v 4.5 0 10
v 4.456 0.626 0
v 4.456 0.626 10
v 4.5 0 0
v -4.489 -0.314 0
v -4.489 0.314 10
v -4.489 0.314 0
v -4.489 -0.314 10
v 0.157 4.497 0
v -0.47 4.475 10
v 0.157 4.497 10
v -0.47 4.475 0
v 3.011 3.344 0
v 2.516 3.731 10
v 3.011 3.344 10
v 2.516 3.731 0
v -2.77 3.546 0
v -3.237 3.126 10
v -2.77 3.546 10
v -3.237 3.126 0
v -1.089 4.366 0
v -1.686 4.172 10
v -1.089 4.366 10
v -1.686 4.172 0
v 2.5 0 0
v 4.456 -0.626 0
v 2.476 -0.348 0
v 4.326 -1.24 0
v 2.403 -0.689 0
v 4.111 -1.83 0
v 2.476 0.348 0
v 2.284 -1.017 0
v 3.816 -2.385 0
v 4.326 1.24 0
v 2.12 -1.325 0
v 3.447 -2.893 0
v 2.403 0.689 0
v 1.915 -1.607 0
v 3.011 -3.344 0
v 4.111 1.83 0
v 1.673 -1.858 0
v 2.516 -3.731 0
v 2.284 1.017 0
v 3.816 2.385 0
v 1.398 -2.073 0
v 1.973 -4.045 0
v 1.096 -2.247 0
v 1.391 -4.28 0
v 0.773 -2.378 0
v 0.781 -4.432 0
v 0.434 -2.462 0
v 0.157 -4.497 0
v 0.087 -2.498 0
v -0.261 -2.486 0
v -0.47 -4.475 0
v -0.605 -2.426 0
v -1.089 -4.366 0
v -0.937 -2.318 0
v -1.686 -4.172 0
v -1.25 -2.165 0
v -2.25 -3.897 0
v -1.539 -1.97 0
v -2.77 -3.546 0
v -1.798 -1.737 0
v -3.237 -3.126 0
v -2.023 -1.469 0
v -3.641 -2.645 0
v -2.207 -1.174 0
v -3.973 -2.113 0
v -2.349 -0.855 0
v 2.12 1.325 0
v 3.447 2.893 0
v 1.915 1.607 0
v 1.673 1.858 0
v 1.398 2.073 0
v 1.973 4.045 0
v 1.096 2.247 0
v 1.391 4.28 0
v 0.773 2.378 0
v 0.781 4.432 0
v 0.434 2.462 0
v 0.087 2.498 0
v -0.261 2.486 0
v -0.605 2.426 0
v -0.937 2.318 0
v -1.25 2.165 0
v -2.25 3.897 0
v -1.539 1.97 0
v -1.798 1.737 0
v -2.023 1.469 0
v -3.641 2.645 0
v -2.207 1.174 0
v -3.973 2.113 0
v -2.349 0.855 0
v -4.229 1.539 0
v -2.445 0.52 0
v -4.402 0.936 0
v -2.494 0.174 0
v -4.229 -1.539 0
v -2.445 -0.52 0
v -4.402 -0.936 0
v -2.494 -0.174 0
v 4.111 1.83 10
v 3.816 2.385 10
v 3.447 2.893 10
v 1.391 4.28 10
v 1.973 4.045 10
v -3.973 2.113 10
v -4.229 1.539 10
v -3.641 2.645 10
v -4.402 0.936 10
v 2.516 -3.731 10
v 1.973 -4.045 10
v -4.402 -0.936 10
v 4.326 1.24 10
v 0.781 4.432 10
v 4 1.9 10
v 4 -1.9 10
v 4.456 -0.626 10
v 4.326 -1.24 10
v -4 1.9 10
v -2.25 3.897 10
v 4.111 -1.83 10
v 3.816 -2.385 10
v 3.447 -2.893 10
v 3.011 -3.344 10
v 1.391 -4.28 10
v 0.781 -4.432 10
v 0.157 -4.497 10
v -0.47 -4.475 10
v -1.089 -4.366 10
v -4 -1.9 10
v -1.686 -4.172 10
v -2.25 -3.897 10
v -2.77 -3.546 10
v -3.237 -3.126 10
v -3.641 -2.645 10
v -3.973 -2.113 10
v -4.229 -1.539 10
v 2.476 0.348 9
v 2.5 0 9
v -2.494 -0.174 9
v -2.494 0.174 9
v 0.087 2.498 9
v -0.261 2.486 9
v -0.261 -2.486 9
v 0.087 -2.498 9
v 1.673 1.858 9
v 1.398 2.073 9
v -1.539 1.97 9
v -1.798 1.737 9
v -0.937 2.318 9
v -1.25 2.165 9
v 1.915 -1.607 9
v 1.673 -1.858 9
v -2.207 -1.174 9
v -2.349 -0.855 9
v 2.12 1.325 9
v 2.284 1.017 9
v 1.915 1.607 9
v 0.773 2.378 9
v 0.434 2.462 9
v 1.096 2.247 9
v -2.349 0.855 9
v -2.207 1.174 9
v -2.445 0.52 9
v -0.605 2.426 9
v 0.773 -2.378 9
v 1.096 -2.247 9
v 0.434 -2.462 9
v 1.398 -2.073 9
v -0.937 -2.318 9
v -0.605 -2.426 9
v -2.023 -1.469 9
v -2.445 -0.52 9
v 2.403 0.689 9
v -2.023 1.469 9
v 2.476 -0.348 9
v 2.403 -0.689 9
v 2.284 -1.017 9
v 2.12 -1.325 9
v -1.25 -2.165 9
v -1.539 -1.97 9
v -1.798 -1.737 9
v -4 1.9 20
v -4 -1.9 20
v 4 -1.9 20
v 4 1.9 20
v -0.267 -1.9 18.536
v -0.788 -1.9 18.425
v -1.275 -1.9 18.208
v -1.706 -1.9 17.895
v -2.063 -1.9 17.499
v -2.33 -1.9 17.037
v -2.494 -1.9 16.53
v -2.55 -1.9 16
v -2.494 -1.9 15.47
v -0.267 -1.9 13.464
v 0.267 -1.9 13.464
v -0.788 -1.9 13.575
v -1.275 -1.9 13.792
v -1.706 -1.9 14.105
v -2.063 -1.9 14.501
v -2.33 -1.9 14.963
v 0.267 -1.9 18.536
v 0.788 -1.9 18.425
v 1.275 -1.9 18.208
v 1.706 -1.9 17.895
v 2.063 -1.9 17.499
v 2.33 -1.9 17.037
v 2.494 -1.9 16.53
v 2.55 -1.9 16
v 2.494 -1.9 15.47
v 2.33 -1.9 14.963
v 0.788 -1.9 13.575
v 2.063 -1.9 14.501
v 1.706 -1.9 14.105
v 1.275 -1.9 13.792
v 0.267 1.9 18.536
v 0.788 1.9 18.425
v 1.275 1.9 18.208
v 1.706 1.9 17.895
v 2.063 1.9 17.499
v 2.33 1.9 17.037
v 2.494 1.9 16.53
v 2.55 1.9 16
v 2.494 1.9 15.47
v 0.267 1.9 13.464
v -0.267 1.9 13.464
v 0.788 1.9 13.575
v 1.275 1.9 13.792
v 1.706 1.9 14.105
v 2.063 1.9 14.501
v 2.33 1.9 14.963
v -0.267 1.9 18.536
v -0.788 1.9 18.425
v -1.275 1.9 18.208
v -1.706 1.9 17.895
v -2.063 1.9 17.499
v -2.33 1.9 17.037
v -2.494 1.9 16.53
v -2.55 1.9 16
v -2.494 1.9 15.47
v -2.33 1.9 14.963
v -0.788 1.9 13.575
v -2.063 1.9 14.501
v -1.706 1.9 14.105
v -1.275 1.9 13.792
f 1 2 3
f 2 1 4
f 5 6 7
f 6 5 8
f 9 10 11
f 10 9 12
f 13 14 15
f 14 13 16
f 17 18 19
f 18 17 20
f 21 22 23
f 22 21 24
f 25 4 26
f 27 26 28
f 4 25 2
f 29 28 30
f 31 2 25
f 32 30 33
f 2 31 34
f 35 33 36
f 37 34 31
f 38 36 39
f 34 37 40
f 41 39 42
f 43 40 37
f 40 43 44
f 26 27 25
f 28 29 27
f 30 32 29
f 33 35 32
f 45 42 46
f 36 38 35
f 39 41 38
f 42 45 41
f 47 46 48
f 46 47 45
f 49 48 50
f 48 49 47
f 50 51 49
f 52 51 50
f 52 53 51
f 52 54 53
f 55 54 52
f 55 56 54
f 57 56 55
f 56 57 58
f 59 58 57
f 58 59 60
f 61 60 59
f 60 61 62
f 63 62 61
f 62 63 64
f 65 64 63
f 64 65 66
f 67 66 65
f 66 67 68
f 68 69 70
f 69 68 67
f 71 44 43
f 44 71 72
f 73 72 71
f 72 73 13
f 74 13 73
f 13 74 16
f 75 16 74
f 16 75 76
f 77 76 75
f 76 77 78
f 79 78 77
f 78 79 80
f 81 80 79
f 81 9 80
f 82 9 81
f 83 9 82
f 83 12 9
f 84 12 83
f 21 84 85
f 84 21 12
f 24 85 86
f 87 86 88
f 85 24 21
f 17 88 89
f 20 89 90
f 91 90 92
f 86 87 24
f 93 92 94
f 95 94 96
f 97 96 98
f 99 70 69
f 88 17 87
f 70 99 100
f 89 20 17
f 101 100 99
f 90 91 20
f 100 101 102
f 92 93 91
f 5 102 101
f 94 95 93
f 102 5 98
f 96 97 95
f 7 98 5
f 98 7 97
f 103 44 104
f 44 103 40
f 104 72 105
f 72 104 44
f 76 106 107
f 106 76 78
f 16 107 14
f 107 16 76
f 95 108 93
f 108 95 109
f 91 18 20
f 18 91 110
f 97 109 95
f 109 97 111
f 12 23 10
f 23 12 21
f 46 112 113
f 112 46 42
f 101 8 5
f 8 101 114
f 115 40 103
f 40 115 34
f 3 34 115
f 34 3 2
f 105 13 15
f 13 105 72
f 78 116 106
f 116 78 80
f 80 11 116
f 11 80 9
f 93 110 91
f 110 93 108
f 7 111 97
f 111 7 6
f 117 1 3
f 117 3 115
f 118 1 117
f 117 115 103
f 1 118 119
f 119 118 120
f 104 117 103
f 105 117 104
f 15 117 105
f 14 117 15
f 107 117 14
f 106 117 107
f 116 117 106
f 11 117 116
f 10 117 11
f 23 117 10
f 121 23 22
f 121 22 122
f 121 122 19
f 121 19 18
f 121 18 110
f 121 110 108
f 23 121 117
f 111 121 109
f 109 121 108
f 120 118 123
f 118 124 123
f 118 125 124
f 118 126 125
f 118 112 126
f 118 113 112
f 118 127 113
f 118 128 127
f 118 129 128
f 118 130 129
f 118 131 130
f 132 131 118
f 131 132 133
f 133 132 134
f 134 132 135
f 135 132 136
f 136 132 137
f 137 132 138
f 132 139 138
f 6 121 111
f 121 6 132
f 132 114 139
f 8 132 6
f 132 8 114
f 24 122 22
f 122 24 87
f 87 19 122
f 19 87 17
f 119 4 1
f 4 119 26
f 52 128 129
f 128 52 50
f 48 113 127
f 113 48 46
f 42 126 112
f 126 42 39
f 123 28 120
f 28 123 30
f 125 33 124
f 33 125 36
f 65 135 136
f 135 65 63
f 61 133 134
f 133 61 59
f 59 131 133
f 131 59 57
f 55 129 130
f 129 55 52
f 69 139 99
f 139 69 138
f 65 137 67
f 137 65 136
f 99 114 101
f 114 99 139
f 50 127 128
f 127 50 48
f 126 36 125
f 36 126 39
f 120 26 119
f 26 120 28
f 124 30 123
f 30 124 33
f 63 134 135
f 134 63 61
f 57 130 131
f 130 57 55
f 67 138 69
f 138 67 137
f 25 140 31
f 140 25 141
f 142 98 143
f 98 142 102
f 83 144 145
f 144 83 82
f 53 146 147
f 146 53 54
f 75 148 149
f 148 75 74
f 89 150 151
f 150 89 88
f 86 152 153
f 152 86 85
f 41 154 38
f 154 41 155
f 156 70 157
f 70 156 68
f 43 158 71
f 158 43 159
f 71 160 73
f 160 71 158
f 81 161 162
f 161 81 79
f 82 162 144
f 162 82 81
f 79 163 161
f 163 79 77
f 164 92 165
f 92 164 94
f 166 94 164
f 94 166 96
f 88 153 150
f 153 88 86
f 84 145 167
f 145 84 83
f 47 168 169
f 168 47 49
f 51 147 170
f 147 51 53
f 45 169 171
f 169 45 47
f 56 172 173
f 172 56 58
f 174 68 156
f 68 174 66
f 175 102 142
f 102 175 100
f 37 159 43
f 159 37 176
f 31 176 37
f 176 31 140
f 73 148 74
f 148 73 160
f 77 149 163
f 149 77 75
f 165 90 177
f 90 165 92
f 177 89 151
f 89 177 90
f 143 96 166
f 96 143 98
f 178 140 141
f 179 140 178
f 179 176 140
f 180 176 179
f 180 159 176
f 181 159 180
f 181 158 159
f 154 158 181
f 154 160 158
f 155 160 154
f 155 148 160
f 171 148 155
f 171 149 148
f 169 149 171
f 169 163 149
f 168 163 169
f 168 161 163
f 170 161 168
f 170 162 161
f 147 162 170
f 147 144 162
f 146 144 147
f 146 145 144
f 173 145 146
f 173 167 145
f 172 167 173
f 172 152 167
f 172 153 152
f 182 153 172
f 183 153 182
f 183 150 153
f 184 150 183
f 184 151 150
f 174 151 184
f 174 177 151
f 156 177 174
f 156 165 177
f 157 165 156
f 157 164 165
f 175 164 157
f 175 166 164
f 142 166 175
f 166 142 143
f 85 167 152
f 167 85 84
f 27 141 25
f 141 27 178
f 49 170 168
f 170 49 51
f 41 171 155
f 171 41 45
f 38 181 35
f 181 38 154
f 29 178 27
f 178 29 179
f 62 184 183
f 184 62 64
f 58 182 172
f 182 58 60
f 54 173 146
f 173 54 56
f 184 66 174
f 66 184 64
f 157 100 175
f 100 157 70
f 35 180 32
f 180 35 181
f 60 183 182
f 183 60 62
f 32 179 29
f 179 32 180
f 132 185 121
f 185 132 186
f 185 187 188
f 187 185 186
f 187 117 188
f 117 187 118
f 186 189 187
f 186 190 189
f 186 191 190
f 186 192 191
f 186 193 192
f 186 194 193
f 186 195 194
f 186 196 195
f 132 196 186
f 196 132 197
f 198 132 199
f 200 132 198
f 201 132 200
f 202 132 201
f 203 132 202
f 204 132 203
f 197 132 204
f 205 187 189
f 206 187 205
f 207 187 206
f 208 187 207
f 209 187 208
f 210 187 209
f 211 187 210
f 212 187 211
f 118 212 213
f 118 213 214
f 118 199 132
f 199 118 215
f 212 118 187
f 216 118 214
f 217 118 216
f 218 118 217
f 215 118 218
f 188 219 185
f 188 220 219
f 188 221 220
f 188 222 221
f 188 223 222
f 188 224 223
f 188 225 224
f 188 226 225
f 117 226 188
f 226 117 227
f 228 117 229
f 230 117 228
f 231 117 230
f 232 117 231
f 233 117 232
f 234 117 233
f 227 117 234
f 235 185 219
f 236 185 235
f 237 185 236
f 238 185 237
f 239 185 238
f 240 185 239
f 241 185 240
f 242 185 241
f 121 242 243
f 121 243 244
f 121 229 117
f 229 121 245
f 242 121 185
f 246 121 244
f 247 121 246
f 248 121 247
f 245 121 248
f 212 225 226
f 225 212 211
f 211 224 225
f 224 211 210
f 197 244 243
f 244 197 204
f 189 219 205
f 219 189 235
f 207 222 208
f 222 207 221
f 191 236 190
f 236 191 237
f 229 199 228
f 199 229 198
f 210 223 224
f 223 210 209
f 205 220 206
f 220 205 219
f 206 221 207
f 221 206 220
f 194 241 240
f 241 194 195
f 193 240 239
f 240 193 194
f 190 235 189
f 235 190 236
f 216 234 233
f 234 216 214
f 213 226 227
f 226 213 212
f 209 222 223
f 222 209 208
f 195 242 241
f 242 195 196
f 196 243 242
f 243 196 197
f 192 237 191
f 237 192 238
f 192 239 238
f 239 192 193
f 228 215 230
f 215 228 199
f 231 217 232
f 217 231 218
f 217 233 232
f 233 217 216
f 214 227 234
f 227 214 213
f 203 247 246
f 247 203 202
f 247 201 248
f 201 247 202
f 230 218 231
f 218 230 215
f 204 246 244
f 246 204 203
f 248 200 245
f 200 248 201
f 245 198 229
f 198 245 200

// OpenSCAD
// Description: "Coupler for Tapster 2 Plus"
// Project home: http://tapsterbot.com

hole_diameter  = 5.1;
hole_radius    = hole_diameter / 2;
tolerance      = 0.2;

difference(){
    cylinder(r=4.5, h=10, $fn=45);

    // threaded rod mount
    translate([0,0,-1])
    cylinder(r=2.5, h=10, $fn=45);
}

translate([0,0,15])
difference(){
    cube([8,4-tolerance,10], center=true);

    translate([0,8,1])
    rotate([90,0,0])
    cylinder(r=hole_radius, h=16, $fn=30);
}
